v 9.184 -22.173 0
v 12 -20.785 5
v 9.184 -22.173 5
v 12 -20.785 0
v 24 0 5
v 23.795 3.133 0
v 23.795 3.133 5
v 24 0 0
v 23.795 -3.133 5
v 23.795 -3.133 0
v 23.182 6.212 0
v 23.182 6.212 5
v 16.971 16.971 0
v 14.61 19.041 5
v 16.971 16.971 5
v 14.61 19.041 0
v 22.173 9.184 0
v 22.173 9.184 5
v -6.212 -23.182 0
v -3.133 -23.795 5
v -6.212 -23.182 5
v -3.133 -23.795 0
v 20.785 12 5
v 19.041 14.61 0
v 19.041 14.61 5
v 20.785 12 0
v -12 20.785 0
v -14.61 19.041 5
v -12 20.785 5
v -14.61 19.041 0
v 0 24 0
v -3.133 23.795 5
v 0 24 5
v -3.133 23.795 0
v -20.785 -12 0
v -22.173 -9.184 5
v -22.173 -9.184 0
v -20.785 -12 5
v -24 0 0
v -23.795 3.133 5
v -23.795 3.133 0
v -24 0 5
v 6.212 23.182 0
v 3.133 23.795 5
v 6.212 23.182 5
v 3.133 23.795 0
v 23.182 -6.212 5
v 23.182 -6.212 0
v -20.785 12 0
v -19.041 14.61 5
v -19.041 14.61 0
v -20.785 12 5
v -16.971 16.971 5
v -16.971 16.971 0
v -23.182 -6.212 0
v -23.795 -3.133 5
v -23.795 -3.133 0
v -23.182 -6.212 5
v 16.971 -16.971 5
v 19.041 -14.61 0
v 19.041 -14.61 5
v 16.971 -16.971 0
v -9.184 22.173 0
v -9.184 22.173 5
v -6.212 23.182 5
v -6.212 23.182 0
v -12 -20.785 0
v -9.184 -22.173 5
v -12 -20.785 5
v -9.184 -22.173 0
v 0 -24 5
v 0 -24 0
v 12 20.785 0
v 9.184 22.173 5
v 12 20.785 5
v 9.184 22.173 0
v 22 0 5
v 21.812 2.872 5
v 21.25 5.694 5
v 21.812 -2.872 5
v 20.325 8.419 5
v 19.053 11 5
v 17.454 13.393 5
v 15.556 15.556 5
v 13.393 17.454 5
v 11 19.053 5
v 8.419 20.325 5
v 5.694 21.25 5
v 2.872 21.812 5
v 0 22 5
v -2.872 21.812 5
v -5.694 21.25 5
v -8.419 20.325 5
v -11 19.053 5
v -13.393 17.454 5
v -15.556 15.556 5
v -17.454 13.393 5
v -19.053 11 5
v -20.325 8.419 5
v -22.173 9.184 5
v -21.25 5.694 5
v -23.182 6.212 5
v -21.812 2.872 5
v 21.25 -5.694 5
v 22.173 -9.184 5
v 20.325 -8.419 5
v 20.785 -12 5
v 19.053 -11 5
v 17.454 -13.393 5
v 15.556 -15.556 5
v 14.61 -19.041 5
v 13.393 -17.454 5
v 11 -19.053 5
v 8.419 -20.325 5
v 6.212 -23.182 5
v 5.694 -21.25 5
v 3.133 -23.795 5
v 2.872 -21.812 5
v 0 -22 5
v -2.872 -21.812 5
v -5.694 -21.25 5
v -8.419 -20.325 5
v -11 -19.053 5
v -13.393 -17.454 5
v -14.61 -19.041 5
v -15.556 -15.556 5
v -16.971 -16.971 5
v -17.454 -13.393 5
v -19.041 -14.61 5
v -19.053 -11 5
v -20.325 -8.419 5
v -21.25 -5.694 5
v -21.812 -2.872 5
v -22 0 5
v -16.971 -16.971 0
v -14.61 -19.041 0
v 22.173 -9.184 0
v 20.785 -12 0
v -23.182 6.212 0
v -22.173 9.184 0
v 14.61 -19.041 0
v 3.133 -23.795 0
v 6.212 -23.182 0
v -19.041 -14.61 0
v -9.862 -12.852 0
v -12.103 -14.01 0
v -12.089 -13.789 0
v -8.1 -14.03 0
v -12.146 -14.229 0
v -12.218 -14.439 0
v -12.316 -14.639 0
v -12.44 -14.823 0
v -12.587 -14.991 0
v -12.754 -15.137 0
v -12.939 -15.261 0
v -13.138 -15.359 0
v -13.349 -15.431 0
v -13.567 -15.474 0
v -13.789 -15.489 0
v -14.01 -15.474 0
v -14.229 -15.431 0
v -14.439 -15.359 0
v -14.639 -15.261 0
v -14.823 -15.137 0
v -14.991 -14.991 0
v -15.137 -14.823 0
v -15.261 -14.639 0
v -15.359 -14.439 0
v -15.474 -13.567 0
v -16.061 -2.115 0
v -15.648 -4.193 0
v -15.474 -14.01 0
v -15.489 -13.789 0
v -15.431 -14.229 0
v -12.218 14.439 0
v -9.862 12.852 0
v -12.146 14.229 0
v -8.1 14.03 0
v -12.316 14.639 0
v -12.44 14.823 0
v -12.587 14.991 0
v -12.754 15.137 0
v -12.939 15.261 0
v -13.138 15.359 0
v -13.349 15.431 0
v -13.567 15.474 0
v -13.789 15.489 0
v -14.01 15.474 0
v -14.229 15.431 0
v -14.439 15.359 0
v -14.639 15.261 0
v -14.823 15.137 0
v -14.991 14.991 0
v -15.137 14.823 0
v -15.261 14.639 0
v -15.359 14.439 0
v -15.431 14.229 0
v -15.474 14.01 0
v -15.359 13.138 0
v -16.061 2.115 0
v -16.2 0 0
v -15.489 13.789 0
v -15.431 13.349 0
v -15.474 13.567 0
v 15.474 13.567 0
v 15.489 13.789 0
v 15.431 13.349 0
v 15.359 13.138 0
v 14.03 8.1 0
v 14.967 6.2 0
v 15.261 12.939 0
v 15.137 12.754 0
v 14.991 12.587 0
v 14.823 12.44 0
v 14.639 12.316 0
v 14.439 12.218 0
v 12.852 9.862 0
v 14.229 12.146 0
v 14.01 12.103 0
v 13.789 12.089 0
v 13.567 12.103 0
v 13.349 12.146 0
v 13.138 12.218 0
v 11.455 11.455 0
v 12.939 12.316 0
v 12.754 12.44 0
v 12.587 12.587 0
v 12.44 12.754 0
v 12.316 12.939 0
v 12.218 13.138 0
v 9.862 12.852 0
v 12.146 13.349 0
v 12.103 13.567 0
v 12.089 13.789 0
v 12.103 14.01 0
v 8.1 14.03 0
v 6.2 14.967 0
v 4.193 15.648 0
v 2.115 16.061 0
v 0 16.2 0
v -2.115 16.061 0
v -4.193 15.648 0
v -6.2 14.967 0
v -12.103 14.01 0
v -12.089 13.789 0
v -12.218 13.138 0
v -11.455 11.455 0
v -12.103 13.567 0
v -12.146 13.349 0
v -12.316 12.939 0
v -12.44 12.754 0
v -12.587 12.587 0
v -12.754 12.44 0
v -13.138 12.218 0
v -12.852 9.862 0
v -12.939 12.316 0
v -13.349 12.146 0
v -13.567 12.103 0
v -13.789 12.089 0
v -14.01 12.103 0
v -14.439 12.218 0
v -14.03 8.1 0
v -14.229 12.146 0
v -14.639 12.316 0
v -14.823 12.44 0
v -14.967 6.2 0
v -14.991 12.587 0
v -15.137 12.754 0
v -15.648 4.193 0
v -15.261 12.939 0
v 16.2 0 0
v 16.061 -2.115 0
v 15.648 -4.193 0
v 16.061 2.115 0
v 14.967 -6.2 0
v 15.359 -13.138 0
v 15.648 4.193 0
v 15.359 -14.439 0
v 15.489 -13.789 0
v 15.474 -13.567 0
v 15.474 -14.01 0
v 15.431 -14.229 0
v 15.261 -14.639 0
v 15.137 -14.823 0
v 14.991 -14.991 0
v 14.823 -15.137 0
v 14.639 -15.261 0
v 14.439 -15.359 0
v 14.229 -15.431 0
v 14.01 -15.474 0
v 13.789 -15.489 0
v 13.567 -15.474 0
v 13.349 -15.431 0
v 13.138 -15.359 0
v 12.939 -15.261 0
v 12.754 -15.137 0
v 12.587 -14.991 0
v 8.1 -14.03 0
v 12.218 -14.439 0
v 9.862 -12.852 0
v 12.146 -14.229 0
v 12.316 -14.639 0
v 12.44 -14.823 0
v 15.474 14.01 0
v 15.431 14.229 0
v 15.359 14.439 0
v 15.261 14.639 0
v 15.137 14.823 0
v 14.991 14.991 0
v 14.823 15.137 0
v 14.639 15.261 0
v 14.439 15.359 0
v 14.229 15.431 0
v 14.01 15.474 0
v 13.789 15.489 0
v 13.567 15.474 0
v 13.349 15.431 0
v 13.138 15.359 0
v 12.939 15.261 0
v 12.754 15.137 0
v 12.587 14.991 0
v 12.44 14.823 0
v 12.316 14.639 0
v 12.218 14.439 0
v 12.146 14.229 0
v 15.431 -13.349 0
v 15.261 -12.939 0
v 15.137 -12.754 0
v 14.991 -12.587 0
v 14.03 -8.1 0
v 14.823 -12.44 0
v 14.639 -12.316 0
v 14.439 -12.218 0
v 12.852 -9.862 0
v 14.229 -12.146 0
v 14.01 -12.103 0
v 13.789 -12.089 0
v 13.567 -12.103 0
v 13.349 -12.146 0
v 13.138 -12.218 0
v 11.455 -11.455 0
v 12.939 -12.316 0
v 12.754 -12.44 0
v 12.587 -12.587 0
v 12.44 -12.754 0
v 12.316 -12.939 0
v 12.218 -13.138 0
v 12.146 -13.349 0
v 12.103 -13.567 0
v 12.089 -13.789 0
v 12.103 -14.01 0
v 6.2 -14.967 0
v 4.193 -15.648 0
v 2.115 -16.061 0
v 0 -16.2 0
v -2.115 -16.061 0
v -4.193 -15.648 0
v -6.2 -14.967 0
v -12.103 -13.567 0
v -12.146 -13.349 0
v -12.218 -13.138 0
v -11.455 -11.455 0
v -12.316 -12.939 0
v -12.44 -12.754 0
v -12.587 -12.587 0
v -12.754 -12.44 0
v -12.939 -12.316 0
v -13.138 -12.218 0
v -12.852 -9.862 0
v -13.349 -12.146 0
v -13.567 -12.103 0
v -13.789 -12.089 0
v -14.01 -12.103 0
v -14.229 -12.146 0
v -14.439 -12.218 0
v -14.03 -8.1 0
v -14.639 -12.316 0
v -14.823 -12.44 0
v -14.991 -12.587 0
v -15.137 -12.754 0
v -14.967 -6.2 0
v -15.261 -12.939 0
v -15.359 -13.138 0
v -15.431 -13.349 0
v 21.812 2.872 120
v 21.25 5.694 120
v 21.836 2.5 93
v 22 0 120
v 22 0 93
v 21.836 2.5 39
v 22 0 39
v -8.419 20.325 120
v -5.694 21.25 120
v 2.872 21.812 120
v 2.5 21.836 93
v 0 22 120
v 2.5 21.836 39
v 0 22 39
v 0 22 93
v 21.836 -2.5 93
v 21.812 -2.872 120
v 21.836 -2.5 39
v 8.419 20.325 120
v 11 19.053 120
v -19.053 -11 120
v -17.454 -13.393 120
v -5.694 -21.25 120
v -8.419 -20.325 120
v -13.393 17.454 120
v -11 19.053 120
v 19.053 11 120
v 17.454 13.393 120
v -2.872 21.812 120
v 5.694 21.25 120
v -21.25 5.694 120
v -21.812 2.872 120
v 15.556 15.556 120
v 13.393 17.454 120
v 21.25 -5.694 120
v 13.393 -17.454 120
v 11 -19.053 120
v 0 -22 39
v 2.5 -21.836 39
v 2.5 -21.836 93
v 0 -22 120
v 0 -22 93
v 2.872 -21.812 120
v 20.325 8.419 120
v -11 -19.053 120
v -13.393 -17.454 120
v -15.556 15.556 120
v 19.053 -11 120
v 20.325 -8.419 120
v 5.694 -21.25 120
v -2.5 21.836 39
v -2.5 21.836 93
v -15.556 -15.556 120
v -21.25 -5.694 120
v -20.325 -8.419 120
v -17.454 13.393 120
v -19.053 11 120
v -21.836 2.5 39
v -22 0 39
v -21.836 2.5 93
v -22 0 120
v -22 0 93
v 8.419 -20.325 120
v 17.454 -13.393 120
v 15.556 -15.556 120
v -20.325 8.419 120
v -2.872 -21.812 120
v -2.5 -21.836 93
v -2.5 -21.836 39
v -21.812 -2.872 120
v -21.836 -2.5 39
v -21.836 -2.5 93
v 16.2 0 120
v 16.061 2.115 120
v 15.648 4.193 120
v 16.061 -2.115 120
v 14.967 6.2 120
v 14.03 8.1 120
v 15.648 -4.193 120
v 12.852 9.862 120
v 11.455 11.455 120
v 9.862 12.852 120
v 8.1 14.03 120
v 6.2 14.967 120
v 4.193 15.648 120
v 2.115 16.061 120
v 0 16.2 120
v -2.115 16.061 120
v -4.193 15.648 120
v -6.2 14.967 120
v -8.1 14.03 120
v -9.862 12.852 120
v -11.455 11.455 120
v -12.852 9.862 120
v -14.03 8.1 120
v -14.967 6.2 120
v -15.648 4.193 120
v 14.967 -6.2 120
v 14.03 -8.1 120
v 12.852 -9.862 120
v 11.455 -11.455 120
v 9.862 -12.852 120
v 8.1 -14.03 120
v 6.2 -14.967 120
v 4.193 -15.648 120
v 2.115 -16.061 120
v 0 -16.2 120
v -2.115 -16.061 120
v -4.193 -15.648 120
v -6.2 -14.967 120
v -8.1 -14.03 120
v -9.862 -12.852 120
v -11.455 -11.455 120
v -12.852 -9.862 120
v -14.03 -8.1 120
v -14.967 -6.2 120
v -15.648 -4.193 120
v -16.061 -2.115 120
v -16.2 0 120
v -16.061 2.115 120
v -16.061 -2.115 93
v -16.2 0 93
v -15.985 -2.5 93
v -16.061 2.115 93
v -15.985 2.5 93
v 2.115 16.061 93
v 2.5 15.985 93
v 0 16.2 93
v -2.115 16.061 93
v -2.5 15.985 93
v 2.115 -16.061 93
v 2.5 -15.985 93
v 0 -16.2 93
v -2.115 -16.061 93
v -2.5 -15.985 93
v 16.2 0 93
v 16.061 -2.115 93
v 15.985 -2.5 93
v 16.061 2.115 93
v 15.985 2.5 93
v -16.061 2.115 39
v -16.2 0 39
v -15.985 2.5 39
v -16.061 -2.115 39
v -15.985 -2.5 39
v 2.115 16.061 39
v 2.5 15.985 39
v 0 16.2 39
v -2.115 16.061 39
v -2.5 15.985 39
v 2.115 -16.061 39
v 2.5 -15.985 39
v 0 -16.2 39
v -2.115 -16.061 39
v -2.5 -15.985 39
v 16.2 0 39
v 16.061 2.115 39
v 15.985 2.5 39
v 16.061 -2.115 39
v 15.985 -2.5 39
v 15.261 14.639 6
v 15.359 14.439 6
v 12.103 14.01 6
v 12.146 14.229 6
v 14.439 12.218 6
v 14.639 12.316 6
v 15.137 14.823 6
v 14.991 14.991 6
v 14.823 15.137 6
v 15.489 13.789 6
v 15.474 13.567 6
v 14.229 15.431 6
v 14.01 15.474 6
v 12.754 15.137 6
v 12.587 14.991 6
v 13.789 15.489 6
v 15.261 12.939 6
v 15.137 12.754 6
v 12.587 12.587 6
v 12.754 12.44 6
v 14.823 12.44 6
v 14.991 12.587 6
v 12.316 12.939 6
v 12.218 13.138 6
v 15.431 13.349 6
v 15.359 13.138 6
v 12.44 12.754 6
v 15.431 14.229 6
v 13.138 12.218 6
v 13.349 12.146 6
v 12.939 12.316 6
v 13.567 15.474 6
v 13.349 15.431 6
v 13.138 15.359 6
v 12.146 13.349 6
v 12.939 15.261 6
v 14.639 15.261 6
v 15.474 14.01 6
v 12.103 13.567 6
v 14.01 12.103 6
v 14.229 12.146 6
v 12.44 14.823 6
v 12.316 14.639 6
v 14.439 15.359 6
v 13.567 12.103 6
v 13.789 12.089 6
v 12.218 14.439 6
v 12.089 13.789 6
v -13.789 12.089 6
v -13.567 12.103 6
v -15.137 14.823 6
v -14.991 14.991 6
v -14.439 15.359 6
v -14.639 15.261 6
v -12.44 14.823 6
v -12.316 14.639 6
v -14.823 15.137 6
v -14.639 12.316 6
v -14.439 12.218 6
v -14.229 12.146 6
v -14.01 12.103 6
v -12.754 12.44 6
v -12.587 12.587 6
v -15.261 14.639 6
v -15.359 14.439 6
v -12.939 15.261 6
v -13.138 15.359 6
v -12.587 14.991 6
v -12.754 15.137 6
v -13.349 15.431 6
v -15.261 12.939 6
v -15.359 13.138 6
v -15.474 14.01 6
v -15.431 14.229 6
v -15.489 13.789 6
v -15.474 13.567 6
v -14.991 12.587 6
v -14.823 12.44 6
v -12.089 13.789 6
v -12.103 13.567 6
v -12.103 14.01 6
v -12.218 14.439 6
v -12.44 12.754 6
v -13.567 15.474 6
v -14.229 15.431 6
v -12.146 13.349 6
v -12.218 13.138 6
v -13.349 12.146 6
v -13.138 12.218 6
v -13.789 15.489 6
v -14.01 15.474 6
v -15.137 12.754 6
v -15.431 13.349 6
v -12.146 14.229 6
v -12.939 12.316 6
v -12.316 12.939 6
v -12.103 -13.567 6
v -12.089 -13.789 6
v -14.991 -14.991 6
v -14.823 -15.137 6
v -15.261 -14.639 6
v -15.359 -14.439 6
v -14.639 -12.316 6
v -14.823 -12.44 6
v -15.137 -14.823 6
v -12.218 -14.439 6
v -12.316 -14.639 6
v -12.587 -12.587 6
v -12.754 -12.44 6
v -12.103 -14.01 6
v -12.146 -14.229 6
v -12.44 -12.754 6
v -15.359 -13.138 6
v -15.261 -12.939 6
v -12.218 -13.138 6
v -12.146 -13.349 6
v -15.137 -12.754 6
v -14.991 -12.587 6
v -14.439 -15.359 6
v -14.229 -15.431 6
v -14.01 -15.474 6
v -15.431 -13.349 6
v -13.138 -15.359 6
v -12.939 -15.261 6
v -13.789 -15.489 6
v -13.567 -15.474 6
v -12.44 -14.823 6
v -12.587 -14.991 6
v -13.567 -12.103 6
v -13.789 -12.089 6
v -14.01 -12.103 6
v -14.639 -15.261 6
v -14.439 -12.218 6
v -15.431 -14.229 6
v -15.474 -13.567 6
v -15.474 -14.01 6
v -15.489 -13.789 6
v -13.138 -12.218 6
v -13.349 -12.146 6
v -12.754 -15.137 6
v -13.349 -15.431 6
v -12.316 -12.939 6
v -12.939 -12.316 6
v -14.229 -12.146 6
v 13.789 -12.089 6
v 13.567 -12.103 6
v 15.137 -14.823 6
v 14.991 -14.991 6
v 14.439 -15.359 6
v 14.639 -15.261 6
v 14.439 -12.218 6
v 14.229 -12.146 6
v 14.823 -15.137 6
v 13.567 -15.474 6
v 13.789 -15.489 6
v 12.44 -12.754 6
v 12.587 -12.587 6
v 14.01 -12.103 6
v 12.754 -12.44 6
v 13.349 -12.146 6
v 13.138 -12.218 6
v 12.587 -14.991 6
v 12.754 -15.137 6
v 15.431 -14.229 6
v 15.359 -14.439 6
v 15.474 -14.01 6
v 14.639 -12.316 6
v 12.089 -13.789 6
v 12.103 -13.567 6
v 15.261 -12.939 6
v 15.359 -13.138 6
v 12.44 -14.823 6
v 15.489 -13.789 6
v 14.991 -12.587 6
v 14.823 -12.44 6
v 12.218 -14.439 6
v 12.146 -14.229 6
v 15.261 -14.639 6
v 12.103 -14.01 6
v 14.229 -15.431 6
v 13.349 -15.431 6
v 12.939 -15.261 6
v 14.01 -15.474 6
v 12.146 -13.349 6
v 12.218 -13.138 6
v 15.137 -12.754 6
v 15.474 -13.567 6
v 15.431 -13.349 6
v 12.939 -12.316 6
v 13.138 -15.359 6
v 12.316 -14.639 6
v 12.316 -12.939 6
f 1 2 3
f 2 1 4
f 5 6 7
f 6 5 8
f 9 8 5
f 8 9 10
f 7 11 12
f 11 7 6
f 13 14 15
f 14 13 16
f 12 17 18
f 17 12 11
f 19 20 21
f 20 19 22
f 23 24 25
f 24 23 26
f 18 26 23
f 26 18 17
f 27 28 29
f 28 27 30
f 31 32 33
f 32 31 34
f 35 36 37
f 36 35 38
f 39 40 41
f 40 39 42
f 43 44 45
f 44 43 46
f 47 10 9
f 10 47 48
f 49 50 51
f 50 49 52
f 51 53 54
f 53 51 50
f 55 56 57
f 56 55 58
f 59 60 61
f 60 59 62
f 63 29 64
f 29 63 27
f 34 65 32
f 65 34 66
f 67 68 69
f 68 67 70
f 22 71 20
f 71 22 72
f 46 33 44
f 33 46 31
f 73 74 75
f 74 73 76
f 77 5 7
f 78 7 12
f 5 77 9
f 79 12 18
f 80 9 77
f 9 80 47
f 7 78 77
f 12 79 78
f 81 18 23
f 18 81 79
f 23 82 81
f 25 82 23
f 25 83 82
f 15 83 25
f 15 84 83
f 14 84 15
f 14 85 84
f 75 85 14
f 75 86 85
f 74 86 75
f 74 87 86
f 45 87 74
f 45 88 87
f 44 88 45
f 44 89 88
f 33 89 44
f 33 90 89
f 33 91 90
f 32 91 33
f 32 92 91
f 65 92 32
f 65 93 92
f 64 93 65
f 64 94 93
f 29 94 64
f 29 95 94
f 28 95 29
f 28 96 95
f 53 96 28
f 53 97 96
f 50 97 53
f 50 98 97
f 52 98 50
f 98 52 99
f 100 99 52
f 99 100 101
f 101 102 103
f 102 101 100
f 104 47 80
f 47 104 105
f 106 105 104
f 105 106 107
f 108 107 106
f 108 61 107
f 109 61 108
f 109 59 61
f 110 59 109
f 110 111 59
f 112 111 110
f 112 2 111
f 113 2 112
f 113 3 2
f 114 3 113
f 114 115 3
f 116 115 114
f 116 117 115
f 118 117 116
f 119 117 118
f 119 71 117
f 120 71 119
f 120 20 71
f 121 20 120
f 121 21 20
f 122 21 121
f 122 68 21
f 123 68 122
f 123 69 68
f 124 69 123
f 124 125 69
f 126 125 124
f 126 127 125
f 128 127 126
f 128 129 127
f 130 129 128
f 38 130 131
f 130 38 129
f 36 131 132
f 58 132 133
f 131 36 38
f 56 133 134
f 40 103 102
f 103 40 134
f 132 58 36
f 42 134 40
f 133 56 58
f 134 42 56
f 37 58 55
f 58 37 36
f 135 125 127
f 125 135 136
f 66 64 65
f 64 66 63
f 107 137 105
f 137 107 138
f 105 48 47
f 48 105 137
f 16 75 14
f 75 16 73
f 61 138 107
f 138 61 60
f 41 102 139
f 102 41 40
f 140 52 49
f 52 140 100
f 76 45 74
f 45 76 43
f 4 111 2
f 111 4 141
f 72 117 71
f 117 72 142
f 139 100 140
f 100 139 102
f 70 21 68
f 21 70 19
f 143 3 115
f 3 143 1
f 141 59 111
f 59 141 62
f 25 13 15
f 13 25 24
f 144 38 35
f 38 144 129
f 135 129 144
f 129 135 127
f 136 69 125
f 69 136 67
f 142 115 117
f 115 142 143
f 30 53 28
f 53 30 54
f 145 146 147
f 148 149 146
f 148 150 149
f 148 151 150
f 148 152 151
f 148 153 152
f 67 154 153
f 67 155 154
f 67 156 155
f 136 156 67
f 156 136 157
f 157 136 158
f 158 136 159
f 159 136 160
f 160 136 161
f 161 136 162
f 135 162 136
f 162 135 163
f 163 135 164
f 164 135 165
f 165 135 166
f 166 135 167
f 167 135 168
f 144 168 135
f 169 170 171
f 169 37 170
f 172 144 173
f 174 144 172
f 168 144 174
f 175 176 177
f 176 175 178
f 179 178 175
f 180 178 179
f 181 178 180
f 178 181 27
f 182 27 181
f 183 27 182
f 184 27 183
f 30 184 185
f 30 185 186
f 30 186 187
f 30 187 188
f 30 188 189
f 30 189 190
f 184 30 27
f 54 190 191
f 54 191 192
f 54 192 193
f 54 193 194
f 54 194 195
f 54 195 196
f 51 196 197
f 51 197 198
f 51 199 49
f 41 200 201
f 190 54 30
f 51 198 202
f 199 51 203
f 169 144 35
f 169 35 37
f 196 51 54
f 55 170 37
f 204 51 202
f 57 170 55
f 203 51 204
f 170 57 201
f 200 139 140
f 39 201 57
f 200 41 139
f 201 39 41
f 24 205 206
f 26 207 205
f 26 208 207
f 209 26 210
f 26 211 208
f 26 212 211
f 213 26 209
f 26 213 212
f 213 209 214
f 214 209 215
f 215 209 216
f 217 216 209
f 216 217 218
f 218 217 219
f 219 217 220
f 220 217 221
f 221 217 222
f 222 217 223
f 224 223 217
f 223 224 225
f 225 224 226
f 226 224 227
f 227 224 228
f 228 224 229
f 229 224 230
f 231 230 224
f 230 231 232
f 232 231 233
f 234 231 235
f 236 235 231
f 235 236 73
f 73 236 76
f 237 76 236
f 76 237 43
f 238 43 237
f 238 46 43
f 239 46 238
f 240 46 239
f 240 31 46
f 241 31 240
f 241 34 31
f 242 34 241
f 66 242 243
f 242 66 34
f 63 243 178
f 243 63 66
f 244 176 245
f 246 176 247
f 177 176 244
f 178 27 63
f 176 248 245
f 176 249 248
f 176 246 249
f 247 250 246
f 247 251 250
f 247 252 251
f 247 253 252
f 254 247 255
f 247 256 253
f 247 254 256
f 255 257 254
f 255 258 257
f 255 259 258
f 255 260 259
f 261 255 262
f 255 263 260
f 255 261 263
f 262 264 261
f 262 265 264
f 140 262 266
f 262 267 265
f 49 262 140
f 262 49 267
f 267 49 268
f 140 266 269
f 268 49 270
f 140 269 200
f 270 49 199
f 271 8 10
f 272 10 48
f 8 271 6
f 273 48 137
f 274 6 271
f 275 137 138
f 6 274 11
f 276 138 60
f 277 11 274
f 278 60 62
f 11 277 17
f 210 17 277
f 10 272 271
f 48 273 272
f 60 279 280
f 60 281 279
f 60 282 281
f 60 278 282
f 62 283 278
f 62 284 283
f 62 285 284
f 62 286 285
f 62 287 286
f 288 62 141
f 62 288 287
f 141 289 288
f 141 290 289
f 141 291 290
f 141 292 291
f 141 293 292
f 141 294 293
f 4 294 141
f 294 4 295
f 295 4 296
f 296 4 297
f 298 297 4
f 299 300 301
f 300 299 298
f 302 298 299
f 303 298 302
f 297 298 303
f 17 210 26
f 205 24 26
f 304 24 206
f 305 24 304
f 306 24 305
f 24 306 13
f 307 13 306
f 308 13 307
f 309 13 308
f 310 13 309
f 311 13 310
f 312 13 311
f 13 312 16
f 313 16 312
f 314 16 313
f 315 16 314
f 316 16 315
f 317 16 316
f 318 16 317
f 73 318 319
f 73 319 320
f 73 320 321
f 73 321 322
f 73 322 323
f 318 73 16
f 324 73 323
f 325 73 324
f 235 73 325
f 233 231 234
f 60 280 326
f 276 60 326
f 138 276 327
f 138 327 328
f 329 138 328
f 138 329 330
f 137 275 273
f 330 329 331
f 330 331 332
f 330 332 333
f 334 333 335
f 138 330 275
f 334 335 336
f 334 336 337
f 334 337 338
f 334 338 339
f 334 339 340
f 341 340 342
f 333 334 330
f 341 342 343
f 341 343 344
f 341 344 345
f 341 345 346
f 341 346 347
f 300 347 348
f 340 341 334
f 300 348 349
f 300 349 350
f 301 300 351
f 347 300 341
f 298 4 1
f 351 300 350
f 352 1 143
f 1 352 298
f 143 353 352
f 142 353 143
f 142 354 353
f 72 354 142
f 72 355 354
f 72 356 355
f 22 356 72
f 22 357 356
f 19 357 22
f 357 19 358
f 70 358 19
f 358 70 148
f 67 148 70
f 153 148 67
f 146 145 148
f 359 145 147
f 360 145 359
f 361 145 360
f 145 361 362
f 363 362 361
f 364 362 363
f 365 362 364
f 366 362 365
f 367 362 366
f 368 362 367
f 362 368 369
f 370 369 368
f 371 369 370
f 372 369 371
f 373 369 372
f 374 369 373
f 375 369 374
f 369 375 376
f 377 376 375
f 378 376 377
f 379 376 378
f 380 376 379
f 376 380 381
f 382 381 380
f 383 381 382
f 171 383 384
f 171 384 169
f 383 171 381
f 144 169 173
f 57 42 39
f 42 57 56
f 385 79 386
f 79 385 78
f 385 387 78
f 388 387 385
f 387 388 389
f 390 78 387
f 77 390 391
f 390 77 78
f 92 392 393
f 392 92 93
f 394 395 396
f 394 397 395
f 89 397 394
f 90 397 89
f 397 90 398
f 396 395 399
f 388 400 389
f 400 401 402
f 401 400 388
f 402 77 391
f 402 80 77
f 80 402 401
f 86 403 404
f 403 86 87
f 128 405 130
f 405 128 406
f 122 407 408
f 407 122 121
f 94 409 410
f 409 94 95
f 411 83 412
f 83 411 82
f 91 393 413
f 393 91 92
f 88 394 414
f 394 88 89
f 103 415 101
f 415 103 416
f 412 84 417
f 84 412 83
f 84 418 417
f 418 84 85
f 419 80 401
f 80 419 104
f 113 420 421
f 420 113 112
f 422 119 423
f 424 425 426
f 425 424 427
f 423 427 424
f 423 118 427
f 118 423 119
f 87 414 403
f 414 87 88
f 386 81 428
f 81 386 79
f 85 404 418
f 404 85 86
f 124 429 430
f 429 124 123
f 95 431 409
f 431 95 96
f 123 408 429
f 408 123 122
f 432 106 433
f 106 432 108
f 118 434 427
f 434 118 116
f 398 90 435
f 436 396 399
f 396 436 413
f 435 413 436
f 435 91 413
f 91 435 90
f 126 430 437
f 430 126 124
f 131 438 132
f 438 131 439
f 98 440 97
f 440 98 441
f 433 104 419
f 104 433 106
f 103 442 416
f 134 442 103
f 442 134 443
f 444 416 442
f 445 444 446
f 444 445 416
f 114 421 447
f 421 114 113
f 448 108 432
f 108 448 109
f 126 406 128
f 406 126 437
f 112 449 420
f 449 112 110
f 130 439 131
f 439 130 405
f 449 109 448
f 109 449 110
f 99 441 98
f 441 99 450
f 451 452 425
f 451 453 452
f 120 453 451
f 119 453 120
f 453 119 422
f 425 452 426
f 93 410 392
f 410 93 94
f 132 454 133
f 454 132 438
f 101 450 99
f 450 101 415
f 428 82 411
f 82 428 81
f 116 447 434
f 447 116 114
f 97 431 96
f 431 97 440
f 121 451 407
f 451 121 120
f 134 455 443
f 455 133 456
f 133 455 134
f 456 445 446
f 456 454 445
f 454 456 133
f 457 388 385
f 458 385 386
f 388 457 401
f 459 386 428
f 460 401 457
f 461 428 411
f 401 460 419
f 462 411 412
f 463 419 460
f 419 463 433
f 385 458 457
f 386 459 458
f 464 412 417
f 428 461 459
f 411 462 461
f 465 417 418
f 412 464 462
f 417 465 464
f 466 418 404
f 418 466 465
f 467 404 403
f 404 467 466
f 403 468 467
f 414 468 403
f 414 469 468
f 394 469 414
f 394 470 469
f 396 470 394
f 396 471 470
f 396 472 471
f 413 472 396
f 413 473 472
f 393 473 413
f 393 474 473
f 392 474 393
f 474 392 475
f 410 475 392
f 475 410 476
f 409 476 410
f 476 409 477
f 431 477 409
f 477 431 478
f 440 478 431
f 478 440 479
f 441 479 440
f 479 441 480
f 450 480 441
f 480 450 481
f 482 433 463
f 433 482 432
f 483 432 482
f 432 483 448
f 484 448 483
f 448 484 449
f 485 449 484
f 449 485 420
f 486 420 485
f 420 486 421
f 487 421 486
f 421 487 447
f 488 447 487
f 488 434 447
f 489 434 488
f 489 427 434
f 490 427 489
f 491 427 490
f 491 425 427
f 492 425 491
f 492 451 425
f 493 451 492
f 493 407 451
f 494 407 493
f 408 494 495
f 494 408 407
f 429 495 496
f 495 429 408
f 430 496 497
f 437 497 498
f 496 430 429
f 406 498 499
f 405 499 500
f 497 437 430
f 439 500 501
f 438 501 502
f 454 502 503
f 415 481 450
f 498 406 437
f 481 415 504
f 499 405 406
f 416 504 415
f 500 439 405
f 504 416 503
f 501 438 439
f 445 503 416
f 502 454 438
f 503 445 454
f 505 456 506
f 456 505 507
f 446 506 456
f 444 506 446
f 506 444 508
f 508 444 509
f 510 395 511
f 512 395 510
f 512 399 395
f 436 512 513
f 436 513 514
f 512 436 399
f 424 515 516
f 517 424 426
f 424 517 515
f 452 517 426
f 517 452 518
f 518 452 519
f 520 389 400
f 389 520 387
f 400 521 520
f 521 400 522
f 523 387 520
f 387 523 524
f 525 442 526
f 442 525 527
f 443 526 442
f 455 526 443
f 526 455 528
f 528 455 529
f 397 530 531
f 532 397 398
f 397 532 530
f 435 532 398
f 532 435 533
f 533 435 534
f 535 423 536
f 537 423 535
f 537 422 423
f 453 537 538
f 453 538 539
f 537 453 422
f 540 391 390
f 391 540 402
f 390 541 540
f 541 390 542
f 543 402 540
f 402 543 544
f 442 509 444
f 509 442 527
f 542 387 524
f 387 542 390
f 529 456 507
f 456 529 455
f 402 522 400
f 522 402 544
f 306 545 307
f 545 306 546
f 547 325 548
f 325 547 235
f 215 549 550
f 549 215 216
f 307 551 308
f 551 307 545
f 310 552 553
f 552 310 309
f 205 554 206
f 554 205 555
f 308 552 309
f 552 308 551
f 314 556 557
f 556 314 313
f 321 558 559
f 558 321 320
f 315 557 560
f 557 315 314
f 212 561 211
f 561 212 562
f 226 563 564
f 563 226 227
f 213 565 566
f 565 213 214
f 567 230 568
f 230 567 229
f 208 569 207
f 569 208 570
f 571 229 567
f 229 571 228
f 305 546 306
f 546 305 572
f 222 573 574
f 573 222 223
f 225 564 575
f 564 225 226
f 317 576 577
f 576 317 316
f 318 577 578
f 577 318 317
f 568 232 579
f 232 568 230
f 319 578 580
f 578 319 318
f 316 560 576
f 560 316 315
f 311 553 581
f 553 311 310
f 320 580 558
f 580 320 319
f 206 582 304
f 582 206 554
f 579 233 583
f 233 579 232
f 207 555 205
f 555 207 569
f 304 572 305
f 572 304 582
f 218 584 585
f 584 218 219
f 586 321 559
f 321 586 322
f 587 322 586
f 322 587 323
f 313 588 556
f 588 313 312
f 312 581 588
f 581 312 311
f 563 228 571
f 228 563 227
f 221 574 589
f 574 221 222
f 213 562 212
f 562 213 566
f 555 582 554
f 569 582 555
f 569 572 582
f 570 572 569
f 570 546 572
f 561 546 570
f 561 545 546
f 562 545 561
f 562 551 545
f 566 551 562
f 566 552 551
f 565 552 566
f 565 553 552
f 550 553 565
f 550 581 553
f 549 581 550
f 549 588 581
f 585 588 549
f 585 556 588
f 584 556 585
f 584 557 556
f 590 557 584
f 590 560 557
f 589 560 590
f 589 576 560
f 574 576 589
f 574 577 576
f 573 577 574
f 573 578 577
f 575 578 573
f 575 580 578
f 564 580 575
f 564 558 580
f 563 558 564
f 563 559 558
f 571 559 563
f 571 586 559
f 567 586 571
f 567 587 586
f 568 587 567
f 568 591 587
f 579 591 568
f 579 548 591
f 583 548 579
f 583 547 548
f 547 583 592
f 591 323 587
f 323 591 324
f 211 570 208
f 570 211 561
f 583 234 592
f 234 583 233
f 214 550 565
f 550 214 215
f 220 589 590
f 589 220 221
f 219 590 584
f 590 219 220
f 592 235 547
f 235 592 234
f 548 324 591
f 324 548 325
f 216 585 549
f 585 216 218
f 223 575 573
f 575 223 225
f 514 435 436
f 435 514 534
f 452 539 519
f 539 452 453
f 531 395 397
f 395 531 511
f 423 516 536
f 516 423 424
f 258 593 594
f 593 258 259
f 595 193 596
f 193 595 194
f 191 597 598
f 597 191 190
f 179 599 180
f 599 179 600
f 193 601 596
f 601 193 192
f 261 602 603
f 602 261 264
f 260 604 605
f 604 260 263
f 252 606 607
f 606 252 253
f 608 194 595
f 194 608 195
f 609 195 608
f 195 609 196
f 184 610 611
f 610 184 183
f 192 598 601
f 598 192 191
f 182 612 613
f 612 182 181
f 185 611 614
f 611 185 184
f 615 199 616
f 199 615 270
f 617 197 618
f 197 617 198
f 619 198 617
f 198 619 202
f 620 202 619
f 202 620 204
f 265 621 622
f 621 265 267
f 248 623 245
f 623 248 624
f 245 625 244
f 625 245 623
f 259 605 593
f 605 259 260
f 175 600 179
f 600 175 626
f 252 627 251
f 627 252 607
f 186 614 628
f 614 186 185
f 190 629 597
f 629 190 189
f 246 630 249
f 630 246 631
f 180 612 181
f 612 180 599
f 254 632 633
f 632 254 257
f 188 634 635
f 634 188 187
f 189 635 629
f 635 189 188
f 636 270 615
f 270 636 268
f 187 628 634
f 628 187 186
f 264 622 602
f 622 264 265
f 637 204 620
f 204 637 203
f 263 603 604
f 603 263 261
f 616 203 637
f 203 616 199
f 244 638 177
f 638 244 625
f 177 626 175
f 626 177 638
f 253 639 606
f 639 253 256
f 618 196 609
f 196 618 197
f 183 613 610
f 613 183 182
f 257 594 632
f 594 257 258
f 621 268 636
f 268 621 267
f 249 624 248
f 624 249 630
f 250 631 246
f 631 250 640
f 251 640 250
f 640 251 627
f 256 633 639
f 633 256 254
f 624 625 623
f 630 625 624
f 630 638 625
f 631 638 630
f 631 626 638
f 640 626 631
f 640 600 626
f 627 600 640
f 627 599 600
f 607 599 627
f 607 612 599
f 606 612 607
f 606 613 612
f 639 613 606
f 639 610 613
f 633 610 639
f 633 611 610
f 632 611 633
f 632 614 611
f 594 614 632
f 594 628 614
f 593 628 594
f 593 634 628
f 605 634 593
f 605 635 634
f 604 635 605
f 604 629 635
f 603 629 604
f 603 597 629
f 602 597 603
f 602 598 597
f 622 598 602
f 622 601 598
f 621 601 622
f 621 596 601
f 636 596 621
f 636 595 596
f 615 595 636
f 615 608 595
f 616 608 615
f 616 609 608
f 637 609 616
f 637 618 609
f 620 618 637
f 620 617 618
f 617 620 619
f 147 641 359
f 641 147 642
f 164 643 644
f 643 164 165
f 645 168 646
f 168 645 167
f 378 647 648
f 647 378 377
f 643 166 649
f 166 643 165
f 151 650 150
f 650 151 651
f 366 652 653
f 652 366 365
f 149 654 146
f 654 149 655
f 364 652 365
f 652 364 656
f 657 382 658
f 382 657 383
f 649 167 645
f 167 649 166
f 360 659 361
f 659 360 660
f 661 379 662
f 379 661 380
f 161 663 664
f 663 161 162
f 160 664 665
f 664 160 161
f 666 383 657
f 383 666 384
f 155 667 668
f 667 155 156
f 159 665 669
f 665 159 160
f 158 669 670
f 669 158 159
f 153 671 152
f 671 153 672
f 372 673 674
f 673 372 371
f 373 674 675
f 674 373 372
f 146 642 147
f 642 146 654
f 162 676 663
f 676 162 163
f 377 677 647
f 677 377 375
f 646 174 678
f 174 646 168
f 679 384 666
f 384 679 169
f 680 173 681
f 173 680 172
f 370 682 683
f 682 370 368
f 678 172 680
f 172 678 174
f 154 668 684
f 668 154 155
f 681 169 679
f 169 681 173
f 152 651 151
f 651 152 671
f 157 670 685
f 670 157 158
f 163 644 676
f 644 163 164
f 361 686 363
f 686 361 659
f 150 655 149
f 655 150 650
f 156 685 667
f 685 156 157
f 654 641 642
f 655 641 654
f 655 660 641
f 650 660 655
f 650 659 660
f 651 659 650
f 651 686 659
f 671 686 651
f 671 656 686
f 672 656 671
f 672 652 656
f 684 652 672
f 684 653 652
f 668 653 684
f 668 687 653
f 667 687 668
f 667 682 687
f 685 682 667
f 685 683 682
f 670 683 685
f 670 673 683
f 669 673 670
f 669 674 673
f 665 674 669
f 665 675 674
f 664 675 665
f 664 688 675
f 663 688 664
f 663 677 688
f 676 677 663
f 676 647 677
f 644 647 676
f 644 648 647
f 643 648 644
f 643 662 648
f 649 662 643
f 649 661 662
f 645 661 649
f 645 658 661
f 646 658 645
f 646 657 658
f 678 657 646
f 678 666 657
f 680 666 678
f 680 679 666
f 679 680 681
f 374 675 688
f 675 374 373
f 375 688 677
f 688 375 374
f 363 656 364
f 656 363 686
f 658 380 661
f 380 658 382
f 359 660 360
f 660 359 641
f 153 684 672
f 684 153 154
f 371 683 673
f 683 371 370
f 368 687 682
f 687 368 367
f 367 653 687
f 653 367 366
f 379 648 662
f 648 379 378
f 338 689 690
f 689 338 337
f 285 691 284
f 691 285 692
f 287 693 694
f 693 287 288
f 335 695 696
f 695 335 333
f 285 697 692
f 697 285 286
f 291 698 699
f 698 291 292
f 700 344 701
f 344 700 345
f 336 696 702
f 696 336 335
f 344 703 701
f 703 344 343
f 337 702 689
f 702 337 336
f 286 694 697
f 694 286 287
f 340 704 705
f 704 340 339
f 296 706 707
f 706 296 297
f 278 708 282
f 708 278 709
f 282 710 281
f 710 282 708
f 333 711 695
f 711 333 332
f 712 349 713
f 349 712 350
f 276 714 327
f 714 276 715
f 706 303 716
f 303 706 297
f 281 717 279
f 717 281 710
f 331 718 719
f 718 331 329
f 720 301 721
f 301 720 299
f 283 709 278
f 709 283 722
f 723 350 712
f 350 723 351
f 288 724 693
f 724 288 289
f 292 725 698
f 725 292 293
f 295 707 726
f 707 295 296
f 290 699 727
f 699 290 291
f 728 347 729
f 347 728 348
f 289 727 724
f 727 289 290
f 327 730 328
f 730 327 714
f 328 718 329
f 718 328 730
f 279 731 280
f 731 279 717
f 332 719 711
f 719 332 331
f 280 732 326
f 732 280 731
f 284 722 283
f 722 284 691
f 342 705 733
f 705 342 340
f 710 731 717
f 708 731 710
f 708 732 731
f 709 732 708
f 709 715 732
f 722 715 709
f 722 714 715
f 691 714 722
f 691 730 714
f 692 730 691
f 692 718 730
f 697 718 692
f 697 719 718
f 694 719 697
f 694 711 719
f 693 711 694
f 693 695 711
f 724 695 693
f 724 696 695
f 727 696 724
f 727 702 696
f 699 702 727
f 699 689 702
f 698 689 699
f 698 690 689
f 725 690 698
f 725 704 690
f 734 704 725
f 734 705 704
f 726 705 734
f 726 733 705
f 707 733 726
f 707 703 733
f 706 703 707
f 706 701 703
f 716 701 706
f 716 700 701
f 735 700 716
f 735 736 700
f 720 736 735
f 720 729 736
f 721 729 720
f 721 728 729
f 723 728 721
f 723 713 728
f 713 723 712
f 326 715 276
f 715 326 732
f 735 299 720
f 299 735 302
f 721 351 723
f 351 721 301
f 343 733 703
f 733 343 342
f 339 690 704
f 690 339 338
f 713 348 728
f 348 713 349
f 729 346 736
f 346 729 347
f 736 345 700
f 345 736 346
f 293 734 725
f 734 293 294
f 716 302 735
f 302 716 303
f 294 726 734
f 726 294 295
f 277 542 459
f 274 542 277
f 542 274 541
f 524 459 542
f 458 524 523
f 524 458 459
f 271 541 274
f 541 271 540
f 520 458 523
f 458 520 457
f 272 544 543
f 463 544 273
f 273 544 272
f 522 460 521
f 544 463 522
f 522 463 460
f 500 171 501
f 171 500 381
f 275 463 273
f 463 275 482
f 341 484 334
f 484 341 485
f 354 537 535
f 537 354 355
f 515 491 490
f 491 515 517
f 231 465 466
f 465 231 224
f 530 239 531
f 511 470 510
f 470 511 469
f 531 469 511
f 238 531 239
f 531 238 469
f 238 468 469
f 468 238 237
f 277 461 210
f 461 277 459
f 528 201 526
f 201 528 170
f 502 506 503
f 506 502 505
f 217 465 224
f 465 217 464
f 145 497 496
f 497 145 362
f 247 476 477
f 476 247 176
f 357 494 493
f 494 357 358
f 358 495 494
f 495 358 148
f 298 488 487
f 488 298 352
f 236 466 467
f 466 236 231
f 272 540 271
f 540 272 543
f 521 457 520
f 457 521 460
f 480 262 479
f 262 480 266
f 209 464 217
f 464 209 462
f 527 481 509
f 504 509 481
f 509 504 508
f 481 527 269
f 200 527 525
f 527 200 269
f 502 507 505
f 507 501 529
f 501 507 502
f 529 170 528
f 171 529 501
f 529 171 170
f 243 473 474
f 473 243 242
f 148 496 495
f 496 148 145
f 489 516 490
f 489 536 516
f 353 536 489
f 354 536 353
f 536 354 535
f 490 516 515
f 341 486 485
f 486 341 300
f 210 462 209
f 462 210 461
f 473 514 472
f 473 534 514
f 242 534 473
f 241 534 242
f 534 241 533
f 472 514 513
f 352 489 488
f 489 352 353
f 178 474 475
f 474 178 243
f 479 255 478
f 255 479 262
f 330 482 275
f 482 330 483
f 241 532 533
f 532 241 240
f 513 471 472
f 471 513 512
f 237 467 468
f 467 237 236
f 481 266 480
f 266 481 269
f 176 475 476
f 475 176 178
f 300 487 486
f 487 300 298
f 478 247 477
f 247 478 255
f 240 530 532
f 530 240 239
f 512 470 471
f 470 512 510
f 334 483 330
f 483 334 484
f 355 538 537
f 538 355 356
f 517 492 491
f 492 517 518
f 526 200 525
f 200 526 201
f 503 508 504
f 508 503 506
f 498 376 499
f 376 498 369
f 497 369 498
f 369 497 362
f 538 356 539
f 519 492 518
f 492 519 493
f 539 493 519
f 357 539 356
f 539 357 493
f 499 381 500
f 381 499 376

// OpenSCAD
// ============================================================================
// Get Me An Alt — Parametric OpenSCAD Module
// Part: PRT-06 — J4 Hollow Wrist-Roll Forearm Barrel (120mm) (forearm-tube)
// Function: Provides J4 axial roll motion between elbow and wrist clevis.
// Target Bounding Box (mm): [48, 48, 120]
// Print Material: PLA+ | Min Wall: >= 1.6mm | Tolerance: 0.2mm
// ============================================================================
$fn = 48;
part_width = 48;
part_depth = 48;
part_height = 120;
wall_thickness = 3.2;
floor_thickness = 3.2;
corner_radius = 4;
tolerance = 0.2;
m3_clearance_d = 3.4; // M3 screw clearance hole (3.0mm + 2*0.2mm)

module rounded_rect_prism(w, d, h, r) {
  cr = max(0.5, min(r, min(w, d) / 2 - 0.1));
  linear_extrude(height = h)
    offset(r = cr)
      offset(r = -cr)
        square([w, d], center = true);
}

module part_forearm_tube() {
  difference() {
    union() {
      // Base mounting flange
      cylinder(h = 5, r = 24);
      // Cylindrical isolation collar
      cylinder(h = part_height, r = 22);
    }
    // Central bore with 0.2mm fit tolerance
    translate([0, 0, -1])
      cylinder(h = part_height + 2, r = 16 + tolerance);
    // Side water intake relief slots
    for (ang = [0, 90, 180, 270]) {
      rotate([0, 0, ang])
        translate([0, 0, part_height * 0.55])
          cube([52.8, 5.0, part_height * 0.45], center = true);
      // Flange M3 anchor holes
      rotate([0, 0, ang + 45])
        translate([19.5, 0, -1])
          cylinder(h = 7, d = m3_clearance_d);
    }
  }
}

part_forearm_tube();
